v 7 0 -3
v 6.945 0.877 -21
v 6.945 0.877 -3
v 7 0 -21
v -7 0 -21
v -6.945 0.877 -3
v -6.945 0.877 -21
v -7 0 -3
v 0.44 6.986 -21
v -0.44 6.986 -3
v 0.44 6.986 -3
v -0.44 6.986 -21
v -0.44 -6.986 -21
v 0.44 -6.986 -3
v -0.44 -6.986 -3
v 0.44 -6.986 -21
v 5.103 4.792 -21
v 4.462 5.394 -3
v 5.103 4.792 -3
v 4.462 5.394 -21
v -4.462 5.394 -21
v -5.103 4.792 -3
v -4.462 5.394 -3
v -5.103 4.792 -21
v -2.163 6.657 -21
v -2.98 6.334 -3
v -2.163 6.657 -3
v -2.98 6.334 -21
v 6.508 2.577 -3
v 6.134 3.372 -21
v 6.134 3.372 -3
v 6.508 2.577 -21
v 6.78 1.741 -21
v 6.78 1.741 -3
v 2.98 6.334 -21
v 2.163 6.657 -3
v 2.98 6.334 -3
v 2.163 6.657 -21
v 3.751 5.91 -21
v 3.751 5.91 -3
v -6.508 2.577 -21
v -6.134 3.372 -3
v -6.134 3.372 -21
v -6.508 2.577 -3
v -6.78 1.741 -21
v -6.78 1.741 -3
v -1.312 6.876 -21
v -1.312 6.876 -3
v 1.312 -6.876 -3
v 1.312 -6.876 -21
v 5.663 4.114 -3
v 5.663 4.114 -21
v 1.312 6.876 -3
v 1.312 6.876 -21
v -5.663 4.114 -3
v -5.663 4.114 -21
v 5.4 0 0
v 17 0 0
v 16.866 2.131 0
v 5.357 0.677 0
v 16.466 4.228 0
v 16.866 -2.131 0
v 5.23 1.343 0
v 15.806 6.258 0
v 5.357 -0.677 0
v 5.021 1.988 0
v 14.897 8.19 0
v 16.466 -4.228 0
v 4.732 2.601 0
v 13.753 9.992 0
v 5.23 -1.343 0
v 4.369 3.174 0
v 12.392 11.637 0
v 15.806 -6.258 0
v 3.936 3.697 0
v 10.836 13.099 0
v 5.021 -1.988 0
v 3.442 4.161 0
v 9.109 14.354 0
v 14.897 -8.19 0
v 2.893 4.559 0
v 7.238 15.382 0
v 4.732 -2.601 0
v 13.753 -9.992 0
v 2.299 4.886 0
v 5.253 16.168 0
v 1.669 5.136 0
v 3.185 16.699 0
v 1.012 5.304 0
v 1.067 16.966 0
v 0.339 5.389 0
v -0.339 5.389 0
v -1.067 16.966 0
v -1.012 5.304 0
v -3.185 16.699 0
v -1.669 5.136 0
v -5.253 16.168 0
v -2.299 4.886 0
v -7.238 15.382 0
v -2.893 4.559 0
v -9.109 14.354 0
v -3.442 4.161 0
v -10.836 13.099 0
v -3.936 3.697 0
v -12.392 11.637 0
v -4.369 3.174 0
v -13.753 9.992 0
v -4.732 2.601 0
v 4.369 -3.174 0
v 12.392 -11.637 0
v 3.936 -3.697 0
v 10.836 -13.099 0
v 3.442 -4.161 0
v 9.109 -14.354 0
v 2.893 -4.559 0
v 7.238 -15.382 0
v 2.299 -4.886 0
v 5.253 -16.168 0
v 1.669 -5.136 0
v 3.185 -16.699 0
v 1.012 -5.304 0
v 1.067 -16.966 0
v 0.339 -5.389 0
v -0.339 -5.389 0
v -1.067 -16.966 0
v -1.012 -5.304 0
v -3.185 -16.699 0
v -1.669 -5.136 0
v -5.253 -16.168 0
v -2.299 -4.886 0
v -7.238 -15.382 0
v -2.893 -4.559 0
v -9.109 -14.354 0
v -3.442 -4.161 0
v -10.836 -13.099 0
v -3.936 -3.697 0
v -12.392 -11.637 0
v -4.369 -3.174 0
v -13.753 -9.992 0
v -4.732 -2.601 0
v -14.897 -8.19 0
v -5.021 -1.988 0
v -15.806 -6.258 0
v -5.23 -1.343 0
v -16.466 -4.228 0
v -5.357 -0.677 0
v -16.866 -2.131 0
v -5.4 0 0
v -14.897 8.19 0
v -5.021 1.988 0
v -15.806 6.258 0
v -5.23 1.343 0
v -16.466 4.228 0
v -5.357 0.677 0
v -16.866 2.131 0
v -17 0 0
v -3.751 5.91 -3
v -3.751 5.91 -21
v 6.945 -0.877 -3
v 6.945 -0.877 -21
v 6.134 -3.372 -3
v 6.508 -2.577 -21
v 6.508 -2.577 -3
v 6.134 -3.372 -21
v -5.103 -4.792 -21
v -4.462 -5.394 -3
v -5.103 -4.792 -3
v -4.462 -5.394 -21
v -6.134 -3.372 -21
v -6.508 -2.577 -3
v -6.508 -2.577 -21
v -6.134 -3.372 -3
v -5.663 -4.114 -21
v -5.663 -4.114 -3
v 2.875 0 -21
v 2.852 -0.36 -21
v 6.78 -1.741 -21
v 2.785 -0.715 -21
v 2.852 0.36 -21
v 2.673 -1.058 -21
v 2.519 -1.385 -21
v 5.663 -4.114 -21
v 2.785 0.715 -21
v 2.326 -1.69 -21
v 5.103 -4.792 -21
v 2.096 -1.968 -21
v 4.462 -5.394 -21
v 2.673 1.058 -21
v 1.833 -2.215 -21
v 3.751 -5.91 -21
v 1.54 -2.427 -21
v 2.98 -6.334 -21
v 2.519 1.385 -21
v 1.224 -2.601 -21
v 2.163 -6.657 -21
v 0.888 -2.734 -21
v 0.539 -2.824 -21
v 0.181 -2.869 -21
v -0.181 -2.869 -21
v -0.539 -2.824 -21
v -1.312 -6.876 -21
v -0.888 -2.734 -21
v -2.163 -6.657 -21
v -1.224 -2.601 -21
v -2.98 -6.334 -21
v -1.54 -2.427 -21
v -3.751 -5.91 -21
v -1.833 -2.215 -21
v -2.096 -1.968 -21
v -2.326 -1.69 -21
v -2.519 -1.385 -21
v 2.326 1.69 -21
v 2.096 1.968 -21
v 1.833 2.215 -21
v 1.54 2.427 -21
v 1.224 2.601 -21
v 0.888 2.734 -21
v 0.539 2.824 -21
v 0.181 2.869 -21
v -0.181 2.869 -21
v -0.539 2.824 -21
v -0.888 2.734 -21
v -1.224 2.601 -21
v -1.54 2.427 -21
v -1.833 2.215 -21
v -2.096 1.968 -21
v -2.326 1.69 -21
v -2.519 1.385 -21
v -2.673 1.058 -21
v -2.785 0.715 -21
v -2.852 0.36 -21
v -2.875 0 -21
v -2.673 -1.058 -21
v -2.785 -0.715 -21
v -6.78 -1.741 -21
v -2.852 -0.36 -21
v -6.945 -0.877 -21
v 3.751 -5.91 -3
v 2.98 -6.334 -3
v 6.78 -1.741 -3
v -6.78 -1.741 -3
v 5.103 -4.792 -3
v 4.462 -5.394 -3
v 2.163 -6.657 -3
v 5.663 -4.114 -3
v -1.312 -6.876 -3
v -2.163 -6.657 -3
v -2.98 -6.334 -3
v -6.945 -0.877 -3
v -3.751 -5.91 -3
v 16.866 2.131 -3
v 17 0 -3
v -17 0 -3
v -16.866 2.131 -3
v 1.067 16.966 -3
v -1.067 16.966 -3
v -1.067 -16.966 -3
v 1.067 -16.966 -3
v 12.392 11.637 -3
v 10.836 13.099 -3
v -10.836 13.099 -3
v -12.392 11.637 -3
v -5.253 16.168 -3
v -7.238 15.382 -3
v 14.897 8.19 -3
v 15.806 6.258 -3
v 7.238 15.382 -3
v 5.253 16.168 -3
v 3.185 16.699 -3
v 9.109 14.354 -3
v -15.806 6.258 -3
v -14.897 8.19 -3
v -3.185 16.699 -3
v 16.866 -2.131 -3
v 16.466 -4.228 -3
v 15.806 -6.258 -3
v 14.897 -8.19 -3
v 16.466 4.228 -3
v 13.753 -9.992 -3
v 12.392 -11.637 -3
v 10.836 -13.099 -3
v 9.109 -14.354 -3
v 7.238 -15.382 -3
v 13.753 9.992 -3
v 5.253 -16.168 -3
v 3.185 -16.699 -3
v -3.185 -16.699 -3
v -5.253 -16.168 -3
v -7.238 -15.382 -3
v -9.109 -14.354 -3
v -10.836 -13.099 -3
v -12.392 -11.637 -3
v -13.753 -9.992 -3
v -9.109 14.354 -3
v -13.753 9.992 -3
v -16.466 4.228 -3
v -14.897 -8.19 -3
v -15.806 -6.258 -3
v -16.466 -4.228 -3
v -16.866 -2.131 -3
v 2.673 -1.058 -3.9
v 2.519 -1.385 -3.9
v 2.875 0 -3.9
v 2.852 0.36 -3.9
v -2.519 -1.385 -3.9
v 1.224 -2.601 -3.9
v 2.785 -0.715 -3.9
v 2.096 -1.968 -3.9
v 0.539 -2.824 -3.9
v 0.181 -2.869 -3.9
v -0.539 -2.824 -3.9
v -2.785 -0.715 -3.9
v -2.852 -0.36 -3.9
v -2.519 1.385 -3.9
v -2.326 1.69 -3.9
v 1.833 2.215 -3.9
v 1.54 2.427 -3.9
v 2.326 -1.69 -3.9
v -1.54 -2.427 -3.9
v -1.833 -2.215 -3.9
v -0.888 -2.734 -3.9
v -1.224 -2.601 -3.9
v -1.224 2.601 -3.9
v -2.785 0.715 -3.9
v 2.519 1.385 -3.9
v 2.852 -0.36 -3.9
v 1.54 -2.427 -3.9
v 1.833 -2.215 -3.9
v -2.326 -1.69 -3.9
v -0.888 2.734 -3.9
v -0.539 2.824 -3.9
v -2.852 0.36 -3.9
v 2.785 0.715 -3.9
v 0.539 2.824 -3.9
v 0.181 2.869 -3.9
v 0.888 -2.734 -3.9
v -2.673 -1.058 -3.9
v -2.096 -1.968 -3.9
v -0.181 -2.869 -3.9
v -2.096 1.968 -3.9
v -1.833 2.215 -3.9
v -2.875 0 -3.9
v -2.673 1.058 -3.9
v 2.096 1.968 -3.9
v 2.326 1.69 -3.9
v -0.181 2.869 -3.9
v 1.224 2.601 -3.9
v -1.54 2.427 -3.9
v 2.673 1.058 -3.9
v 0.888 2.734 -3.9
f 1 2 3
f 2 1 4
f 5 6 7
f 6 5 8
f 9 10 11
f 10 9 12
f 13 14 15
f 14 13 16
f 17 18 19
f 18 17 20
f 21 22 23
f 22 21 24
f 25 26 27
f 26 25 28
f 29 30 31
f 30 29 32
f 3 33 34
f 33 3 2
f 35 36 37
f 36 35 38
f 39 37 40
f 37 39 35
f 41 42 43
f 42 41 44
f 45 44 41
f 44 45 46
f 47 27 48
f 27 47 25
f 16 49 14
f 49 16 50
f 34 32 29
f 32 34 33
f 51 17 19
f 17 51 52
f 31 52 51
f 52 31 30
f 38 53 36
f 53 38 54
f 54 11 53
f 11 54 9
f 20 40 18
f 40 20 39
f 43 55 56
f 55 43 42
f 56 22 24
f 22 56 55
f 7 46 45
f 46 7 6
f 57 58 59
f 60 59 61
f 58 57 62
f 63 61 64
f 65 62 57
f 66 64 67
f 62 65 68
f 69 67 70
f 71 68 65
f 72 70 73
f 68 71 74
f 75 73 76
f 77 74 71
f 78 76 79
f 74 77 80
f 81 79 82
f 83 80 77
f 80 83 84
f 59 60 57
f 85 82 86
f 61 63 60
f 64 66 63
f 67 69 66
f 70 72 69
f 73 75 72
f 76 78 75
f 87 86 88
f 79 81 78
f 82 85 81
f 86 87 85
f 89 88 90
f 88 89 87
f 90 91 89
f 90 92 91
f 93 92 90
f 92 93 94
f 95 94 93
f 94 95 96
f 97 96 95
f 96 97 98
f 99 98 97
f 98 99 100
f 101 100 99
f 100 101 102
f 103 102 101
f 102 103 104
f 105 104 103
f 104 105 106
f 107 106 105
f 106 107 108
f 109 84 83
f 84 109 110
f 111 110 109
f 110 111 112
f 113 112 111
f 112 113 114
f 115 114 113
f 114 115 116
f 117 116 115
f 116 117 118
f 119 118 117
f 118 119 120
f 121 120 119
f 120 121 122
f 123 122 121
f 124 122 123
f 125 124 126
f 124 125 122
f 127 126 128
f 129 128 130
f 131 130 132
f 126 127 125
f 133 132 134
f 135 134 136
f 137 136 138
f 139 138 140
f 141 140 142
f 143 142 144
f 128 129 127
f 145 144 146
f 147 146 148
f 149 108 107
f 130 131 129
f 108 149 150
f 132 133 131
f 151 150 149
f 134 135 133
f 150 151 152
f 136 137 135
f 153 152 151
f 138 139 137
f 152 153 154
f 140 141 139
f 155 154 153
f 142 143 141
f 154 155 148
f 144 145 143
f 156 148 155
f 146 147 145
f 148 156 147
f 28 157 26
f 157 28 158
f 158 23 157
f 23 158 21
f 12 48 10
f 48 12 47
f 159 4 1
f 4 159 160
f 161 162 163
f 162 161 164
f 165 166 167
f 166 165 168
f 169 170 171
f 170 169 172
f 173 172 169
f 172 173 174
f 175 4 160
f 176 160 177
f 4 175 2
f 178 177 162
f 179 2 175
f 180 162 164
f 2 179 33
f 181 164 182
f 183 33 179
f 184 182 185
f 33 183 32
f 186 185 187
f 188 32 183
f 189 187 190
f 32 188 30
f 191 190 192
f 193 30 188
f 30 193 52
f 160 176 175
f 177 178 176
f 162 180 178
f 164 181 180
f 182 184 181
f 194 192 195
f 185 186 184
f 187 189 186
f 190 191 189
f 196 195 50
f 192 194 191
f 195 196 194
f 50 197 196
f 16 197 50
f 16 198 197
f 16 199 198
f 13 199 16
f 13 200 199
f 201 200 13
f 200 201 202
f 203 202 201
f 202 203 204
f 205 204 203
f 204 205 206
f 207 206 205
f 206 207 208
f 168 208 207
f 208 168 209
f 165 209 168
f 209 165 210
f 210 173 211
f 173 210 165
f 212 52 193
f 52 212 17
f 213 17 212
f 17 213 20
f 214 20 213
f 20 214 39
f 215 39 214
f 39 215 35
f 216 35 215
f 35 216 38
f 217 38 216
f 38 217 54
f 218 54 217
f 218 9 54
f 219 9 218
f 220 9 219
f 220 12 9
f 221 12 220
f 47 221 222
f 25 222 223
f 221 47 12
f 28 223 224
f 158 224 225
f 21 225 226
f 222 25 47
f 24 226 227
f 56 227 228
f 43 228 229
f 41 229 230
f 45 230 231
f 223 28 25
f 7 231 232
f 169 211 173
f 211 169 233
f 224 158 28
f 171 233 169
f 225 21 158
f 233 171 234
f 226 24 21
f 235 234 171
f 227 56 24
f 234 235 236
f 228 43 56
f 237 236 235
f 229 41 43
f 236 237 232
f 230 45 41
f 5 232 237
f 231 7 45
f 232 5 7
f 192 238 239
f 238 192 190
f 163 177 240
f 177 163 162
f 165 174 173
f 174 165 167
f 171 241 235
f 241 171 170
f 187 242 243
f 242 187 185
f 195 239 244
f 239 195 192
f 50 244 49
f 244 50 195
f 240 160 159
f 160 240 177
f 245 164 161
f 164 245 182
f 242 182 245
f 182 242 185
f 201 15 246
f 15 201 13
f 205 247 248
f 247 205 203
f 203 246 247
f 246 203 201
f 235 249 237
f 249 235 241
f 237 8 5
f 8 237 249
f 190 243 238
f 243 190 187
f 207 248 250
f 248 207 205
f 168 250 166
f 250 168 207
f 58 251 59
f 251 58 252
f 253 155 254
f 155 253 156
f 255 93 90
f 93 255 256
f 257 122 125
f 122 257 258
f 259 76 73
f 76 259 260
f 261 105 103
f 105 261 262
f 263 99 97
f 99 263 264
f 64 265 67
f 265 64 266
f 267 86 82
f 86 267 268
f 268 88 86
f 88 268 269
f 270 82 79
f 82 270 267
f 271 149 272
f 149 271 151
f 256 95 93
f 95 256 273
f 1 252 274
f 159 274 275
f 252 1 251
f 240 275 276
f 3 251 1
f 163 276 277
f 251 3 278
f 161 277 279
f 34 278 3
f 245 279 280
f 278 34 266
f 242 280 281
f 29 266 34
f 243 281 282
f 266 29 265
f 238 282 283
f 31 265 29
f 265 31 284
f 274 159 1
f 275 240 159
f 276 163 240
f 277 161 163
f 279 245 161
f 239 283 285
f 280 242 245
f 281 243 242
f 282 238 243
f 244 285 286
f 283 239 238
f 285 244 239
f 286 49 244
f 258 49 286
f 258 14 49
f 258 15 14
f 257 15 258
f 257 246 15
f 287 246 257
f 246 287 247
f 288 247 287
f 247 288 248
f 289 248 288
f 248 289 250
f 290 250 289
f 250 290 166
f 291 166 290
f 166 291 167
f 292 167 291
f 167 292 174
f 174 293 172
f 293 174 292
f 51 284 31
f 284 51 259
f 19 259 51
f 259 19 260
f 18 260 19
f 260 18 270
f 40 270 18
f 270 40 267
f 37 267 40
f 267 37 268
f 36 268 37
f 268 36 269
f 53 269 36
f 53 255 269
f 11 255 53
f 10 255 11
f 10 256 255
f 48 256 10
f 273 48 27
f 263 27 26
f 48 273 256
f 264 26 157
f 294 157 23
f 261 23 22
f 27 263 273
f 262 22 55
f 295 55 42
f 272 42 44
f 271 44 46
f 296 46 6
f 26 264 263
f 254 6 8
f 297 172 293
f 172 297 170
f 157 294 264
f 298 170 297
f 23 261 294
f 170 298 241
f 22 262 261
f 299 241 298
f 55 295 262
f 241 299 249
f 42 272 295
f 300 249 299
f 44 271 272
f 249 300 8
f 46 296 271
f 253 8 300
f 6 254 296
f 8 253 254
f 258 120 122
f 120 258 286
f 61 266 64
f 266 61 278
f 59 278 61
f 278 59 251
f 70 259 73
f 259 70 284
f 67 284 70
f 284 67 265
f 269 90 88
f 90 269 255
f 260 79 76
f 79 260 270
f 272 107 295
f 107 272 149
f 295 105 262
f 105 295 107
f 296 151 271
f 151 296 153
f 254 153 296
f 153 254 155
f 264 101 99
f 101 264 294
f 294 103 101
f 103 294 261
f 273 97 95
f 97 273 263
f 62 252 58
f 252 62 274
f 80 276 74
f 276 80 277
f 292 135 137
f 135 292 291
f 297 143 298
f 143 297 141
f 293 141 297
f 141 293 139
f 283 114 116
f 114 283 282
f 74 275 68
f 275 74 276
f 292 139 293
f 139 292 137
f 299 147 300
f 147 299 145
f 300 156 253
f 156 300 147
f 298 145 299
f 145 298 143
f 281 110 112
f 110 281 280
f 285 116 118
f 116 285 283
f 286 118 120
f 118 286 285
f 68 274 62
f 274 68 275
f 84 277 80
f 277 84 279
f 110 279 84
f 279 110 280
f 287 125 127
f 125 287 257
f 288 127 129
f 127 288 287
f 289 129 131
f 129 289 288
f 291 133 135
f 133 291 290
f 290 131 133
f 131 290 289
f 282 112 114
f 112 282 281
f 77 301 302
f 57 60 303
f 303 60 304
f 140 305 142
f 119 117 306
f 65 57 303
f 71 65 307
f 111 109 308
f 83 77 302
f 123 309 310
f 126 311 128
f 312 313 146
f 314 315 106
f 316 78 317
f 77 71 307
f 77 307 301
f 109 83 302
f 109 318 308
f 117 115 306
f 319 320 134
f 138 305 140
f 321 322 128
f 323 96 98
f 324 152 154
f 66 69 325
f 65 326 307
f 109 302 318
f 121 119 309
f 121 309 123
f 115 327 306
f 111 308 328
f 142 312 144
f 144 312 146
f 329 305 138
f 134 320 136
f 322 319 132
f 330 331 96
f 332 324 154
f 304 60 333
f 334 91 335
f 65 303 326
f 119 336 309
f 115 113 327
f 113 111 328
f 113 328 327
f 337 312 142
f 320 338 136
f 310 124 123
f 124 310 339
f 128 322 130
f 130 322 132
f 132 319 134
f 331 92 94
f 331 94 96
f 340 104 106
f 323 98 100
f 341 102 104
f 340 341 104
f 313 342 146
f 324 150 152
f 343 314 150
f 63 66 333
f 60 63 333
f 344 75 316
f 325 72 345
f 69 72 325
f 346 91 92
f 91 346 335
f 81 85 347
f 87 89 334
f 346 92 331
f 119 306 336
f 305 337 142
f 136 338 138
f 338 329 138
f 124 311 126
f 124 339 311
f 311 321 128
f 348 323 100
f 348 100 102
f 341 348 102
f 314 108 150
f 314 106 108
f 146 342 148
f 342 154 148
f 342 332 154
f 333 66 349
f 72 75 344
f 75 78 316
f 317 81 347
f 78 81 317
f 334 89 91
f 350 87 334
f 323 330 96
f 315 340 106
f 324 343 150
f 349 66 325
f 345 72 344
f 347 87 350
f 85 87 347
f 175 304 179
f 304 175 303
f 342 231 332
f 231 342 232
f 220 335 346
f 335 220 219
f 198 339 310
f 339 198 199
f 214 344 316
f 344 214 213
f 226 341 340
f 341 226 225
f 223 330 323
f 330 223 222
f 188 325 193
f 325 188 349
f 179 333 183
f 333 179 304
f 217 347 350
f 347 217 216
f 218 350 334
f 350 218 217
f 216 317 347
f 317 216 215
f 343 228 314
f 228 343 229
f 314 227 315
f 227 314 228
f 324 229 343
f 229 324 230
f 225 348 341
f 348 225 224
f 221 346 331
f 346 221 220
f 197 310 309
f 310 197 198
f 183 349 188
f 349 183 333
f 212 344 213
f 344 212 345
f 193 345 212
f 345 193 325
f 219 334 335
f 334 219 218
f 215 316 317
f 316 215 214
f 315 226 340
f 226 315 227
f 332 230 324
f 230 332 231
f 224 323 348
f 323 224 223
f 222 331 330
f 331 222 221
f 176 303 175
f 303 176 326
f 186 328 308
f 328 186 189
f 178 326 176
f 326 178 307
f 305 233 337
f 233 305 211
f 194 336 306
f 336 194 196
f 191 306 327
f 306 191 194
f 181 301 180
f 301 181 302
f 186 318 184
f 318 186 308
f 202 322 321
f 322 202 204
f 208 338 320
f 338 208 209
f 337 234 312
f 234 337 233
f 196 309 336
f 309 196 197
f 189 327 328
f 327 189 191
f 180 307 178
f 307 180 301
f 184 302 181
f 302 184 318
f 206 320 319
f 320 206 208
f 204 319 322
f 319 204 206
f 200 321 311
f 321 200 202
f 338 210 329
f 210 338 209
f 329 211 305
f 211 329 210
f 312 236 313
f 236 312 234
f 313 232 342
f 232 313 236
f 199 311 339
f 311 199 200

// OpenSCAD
$fn = 50;


difference() {
	union() {
		translate(v = [0, 0, -21.0000000000]) {
			cylinder(h = 21, r = 7.0000000000);
		}
		translate(v = [0, 0, -3.0000000000]) {
			cylinder(h = 3, r = 17.0000000000);
		}
	}
	union() {
		translate(v = [0, 0, 0]) {
			rotate(a = [0, 0, 0]) {
				difference() {
					union() {
						#translate(v = [0, 0, -21.0000000000]) {
							cylinder(h = 21, r = 2.6000000000);
						}
						#translate(v = [0, 0, -3.9000000000]) {
							cylinder(h = 3.9000000000, r1 = 2.8750000000, r2 = 5.4000000000);
						}
						#translate(v = [0, 0, -21.0000000000]) {
							cylinder(h = 21, r = 2.8750000000);
						}
						#translate(v = [0, 0, -21.0000000000]) {
							cylinder(h = 21, r = 2.6000000000);
						}
					}
					union();
				}
			}
		}
	}
}
